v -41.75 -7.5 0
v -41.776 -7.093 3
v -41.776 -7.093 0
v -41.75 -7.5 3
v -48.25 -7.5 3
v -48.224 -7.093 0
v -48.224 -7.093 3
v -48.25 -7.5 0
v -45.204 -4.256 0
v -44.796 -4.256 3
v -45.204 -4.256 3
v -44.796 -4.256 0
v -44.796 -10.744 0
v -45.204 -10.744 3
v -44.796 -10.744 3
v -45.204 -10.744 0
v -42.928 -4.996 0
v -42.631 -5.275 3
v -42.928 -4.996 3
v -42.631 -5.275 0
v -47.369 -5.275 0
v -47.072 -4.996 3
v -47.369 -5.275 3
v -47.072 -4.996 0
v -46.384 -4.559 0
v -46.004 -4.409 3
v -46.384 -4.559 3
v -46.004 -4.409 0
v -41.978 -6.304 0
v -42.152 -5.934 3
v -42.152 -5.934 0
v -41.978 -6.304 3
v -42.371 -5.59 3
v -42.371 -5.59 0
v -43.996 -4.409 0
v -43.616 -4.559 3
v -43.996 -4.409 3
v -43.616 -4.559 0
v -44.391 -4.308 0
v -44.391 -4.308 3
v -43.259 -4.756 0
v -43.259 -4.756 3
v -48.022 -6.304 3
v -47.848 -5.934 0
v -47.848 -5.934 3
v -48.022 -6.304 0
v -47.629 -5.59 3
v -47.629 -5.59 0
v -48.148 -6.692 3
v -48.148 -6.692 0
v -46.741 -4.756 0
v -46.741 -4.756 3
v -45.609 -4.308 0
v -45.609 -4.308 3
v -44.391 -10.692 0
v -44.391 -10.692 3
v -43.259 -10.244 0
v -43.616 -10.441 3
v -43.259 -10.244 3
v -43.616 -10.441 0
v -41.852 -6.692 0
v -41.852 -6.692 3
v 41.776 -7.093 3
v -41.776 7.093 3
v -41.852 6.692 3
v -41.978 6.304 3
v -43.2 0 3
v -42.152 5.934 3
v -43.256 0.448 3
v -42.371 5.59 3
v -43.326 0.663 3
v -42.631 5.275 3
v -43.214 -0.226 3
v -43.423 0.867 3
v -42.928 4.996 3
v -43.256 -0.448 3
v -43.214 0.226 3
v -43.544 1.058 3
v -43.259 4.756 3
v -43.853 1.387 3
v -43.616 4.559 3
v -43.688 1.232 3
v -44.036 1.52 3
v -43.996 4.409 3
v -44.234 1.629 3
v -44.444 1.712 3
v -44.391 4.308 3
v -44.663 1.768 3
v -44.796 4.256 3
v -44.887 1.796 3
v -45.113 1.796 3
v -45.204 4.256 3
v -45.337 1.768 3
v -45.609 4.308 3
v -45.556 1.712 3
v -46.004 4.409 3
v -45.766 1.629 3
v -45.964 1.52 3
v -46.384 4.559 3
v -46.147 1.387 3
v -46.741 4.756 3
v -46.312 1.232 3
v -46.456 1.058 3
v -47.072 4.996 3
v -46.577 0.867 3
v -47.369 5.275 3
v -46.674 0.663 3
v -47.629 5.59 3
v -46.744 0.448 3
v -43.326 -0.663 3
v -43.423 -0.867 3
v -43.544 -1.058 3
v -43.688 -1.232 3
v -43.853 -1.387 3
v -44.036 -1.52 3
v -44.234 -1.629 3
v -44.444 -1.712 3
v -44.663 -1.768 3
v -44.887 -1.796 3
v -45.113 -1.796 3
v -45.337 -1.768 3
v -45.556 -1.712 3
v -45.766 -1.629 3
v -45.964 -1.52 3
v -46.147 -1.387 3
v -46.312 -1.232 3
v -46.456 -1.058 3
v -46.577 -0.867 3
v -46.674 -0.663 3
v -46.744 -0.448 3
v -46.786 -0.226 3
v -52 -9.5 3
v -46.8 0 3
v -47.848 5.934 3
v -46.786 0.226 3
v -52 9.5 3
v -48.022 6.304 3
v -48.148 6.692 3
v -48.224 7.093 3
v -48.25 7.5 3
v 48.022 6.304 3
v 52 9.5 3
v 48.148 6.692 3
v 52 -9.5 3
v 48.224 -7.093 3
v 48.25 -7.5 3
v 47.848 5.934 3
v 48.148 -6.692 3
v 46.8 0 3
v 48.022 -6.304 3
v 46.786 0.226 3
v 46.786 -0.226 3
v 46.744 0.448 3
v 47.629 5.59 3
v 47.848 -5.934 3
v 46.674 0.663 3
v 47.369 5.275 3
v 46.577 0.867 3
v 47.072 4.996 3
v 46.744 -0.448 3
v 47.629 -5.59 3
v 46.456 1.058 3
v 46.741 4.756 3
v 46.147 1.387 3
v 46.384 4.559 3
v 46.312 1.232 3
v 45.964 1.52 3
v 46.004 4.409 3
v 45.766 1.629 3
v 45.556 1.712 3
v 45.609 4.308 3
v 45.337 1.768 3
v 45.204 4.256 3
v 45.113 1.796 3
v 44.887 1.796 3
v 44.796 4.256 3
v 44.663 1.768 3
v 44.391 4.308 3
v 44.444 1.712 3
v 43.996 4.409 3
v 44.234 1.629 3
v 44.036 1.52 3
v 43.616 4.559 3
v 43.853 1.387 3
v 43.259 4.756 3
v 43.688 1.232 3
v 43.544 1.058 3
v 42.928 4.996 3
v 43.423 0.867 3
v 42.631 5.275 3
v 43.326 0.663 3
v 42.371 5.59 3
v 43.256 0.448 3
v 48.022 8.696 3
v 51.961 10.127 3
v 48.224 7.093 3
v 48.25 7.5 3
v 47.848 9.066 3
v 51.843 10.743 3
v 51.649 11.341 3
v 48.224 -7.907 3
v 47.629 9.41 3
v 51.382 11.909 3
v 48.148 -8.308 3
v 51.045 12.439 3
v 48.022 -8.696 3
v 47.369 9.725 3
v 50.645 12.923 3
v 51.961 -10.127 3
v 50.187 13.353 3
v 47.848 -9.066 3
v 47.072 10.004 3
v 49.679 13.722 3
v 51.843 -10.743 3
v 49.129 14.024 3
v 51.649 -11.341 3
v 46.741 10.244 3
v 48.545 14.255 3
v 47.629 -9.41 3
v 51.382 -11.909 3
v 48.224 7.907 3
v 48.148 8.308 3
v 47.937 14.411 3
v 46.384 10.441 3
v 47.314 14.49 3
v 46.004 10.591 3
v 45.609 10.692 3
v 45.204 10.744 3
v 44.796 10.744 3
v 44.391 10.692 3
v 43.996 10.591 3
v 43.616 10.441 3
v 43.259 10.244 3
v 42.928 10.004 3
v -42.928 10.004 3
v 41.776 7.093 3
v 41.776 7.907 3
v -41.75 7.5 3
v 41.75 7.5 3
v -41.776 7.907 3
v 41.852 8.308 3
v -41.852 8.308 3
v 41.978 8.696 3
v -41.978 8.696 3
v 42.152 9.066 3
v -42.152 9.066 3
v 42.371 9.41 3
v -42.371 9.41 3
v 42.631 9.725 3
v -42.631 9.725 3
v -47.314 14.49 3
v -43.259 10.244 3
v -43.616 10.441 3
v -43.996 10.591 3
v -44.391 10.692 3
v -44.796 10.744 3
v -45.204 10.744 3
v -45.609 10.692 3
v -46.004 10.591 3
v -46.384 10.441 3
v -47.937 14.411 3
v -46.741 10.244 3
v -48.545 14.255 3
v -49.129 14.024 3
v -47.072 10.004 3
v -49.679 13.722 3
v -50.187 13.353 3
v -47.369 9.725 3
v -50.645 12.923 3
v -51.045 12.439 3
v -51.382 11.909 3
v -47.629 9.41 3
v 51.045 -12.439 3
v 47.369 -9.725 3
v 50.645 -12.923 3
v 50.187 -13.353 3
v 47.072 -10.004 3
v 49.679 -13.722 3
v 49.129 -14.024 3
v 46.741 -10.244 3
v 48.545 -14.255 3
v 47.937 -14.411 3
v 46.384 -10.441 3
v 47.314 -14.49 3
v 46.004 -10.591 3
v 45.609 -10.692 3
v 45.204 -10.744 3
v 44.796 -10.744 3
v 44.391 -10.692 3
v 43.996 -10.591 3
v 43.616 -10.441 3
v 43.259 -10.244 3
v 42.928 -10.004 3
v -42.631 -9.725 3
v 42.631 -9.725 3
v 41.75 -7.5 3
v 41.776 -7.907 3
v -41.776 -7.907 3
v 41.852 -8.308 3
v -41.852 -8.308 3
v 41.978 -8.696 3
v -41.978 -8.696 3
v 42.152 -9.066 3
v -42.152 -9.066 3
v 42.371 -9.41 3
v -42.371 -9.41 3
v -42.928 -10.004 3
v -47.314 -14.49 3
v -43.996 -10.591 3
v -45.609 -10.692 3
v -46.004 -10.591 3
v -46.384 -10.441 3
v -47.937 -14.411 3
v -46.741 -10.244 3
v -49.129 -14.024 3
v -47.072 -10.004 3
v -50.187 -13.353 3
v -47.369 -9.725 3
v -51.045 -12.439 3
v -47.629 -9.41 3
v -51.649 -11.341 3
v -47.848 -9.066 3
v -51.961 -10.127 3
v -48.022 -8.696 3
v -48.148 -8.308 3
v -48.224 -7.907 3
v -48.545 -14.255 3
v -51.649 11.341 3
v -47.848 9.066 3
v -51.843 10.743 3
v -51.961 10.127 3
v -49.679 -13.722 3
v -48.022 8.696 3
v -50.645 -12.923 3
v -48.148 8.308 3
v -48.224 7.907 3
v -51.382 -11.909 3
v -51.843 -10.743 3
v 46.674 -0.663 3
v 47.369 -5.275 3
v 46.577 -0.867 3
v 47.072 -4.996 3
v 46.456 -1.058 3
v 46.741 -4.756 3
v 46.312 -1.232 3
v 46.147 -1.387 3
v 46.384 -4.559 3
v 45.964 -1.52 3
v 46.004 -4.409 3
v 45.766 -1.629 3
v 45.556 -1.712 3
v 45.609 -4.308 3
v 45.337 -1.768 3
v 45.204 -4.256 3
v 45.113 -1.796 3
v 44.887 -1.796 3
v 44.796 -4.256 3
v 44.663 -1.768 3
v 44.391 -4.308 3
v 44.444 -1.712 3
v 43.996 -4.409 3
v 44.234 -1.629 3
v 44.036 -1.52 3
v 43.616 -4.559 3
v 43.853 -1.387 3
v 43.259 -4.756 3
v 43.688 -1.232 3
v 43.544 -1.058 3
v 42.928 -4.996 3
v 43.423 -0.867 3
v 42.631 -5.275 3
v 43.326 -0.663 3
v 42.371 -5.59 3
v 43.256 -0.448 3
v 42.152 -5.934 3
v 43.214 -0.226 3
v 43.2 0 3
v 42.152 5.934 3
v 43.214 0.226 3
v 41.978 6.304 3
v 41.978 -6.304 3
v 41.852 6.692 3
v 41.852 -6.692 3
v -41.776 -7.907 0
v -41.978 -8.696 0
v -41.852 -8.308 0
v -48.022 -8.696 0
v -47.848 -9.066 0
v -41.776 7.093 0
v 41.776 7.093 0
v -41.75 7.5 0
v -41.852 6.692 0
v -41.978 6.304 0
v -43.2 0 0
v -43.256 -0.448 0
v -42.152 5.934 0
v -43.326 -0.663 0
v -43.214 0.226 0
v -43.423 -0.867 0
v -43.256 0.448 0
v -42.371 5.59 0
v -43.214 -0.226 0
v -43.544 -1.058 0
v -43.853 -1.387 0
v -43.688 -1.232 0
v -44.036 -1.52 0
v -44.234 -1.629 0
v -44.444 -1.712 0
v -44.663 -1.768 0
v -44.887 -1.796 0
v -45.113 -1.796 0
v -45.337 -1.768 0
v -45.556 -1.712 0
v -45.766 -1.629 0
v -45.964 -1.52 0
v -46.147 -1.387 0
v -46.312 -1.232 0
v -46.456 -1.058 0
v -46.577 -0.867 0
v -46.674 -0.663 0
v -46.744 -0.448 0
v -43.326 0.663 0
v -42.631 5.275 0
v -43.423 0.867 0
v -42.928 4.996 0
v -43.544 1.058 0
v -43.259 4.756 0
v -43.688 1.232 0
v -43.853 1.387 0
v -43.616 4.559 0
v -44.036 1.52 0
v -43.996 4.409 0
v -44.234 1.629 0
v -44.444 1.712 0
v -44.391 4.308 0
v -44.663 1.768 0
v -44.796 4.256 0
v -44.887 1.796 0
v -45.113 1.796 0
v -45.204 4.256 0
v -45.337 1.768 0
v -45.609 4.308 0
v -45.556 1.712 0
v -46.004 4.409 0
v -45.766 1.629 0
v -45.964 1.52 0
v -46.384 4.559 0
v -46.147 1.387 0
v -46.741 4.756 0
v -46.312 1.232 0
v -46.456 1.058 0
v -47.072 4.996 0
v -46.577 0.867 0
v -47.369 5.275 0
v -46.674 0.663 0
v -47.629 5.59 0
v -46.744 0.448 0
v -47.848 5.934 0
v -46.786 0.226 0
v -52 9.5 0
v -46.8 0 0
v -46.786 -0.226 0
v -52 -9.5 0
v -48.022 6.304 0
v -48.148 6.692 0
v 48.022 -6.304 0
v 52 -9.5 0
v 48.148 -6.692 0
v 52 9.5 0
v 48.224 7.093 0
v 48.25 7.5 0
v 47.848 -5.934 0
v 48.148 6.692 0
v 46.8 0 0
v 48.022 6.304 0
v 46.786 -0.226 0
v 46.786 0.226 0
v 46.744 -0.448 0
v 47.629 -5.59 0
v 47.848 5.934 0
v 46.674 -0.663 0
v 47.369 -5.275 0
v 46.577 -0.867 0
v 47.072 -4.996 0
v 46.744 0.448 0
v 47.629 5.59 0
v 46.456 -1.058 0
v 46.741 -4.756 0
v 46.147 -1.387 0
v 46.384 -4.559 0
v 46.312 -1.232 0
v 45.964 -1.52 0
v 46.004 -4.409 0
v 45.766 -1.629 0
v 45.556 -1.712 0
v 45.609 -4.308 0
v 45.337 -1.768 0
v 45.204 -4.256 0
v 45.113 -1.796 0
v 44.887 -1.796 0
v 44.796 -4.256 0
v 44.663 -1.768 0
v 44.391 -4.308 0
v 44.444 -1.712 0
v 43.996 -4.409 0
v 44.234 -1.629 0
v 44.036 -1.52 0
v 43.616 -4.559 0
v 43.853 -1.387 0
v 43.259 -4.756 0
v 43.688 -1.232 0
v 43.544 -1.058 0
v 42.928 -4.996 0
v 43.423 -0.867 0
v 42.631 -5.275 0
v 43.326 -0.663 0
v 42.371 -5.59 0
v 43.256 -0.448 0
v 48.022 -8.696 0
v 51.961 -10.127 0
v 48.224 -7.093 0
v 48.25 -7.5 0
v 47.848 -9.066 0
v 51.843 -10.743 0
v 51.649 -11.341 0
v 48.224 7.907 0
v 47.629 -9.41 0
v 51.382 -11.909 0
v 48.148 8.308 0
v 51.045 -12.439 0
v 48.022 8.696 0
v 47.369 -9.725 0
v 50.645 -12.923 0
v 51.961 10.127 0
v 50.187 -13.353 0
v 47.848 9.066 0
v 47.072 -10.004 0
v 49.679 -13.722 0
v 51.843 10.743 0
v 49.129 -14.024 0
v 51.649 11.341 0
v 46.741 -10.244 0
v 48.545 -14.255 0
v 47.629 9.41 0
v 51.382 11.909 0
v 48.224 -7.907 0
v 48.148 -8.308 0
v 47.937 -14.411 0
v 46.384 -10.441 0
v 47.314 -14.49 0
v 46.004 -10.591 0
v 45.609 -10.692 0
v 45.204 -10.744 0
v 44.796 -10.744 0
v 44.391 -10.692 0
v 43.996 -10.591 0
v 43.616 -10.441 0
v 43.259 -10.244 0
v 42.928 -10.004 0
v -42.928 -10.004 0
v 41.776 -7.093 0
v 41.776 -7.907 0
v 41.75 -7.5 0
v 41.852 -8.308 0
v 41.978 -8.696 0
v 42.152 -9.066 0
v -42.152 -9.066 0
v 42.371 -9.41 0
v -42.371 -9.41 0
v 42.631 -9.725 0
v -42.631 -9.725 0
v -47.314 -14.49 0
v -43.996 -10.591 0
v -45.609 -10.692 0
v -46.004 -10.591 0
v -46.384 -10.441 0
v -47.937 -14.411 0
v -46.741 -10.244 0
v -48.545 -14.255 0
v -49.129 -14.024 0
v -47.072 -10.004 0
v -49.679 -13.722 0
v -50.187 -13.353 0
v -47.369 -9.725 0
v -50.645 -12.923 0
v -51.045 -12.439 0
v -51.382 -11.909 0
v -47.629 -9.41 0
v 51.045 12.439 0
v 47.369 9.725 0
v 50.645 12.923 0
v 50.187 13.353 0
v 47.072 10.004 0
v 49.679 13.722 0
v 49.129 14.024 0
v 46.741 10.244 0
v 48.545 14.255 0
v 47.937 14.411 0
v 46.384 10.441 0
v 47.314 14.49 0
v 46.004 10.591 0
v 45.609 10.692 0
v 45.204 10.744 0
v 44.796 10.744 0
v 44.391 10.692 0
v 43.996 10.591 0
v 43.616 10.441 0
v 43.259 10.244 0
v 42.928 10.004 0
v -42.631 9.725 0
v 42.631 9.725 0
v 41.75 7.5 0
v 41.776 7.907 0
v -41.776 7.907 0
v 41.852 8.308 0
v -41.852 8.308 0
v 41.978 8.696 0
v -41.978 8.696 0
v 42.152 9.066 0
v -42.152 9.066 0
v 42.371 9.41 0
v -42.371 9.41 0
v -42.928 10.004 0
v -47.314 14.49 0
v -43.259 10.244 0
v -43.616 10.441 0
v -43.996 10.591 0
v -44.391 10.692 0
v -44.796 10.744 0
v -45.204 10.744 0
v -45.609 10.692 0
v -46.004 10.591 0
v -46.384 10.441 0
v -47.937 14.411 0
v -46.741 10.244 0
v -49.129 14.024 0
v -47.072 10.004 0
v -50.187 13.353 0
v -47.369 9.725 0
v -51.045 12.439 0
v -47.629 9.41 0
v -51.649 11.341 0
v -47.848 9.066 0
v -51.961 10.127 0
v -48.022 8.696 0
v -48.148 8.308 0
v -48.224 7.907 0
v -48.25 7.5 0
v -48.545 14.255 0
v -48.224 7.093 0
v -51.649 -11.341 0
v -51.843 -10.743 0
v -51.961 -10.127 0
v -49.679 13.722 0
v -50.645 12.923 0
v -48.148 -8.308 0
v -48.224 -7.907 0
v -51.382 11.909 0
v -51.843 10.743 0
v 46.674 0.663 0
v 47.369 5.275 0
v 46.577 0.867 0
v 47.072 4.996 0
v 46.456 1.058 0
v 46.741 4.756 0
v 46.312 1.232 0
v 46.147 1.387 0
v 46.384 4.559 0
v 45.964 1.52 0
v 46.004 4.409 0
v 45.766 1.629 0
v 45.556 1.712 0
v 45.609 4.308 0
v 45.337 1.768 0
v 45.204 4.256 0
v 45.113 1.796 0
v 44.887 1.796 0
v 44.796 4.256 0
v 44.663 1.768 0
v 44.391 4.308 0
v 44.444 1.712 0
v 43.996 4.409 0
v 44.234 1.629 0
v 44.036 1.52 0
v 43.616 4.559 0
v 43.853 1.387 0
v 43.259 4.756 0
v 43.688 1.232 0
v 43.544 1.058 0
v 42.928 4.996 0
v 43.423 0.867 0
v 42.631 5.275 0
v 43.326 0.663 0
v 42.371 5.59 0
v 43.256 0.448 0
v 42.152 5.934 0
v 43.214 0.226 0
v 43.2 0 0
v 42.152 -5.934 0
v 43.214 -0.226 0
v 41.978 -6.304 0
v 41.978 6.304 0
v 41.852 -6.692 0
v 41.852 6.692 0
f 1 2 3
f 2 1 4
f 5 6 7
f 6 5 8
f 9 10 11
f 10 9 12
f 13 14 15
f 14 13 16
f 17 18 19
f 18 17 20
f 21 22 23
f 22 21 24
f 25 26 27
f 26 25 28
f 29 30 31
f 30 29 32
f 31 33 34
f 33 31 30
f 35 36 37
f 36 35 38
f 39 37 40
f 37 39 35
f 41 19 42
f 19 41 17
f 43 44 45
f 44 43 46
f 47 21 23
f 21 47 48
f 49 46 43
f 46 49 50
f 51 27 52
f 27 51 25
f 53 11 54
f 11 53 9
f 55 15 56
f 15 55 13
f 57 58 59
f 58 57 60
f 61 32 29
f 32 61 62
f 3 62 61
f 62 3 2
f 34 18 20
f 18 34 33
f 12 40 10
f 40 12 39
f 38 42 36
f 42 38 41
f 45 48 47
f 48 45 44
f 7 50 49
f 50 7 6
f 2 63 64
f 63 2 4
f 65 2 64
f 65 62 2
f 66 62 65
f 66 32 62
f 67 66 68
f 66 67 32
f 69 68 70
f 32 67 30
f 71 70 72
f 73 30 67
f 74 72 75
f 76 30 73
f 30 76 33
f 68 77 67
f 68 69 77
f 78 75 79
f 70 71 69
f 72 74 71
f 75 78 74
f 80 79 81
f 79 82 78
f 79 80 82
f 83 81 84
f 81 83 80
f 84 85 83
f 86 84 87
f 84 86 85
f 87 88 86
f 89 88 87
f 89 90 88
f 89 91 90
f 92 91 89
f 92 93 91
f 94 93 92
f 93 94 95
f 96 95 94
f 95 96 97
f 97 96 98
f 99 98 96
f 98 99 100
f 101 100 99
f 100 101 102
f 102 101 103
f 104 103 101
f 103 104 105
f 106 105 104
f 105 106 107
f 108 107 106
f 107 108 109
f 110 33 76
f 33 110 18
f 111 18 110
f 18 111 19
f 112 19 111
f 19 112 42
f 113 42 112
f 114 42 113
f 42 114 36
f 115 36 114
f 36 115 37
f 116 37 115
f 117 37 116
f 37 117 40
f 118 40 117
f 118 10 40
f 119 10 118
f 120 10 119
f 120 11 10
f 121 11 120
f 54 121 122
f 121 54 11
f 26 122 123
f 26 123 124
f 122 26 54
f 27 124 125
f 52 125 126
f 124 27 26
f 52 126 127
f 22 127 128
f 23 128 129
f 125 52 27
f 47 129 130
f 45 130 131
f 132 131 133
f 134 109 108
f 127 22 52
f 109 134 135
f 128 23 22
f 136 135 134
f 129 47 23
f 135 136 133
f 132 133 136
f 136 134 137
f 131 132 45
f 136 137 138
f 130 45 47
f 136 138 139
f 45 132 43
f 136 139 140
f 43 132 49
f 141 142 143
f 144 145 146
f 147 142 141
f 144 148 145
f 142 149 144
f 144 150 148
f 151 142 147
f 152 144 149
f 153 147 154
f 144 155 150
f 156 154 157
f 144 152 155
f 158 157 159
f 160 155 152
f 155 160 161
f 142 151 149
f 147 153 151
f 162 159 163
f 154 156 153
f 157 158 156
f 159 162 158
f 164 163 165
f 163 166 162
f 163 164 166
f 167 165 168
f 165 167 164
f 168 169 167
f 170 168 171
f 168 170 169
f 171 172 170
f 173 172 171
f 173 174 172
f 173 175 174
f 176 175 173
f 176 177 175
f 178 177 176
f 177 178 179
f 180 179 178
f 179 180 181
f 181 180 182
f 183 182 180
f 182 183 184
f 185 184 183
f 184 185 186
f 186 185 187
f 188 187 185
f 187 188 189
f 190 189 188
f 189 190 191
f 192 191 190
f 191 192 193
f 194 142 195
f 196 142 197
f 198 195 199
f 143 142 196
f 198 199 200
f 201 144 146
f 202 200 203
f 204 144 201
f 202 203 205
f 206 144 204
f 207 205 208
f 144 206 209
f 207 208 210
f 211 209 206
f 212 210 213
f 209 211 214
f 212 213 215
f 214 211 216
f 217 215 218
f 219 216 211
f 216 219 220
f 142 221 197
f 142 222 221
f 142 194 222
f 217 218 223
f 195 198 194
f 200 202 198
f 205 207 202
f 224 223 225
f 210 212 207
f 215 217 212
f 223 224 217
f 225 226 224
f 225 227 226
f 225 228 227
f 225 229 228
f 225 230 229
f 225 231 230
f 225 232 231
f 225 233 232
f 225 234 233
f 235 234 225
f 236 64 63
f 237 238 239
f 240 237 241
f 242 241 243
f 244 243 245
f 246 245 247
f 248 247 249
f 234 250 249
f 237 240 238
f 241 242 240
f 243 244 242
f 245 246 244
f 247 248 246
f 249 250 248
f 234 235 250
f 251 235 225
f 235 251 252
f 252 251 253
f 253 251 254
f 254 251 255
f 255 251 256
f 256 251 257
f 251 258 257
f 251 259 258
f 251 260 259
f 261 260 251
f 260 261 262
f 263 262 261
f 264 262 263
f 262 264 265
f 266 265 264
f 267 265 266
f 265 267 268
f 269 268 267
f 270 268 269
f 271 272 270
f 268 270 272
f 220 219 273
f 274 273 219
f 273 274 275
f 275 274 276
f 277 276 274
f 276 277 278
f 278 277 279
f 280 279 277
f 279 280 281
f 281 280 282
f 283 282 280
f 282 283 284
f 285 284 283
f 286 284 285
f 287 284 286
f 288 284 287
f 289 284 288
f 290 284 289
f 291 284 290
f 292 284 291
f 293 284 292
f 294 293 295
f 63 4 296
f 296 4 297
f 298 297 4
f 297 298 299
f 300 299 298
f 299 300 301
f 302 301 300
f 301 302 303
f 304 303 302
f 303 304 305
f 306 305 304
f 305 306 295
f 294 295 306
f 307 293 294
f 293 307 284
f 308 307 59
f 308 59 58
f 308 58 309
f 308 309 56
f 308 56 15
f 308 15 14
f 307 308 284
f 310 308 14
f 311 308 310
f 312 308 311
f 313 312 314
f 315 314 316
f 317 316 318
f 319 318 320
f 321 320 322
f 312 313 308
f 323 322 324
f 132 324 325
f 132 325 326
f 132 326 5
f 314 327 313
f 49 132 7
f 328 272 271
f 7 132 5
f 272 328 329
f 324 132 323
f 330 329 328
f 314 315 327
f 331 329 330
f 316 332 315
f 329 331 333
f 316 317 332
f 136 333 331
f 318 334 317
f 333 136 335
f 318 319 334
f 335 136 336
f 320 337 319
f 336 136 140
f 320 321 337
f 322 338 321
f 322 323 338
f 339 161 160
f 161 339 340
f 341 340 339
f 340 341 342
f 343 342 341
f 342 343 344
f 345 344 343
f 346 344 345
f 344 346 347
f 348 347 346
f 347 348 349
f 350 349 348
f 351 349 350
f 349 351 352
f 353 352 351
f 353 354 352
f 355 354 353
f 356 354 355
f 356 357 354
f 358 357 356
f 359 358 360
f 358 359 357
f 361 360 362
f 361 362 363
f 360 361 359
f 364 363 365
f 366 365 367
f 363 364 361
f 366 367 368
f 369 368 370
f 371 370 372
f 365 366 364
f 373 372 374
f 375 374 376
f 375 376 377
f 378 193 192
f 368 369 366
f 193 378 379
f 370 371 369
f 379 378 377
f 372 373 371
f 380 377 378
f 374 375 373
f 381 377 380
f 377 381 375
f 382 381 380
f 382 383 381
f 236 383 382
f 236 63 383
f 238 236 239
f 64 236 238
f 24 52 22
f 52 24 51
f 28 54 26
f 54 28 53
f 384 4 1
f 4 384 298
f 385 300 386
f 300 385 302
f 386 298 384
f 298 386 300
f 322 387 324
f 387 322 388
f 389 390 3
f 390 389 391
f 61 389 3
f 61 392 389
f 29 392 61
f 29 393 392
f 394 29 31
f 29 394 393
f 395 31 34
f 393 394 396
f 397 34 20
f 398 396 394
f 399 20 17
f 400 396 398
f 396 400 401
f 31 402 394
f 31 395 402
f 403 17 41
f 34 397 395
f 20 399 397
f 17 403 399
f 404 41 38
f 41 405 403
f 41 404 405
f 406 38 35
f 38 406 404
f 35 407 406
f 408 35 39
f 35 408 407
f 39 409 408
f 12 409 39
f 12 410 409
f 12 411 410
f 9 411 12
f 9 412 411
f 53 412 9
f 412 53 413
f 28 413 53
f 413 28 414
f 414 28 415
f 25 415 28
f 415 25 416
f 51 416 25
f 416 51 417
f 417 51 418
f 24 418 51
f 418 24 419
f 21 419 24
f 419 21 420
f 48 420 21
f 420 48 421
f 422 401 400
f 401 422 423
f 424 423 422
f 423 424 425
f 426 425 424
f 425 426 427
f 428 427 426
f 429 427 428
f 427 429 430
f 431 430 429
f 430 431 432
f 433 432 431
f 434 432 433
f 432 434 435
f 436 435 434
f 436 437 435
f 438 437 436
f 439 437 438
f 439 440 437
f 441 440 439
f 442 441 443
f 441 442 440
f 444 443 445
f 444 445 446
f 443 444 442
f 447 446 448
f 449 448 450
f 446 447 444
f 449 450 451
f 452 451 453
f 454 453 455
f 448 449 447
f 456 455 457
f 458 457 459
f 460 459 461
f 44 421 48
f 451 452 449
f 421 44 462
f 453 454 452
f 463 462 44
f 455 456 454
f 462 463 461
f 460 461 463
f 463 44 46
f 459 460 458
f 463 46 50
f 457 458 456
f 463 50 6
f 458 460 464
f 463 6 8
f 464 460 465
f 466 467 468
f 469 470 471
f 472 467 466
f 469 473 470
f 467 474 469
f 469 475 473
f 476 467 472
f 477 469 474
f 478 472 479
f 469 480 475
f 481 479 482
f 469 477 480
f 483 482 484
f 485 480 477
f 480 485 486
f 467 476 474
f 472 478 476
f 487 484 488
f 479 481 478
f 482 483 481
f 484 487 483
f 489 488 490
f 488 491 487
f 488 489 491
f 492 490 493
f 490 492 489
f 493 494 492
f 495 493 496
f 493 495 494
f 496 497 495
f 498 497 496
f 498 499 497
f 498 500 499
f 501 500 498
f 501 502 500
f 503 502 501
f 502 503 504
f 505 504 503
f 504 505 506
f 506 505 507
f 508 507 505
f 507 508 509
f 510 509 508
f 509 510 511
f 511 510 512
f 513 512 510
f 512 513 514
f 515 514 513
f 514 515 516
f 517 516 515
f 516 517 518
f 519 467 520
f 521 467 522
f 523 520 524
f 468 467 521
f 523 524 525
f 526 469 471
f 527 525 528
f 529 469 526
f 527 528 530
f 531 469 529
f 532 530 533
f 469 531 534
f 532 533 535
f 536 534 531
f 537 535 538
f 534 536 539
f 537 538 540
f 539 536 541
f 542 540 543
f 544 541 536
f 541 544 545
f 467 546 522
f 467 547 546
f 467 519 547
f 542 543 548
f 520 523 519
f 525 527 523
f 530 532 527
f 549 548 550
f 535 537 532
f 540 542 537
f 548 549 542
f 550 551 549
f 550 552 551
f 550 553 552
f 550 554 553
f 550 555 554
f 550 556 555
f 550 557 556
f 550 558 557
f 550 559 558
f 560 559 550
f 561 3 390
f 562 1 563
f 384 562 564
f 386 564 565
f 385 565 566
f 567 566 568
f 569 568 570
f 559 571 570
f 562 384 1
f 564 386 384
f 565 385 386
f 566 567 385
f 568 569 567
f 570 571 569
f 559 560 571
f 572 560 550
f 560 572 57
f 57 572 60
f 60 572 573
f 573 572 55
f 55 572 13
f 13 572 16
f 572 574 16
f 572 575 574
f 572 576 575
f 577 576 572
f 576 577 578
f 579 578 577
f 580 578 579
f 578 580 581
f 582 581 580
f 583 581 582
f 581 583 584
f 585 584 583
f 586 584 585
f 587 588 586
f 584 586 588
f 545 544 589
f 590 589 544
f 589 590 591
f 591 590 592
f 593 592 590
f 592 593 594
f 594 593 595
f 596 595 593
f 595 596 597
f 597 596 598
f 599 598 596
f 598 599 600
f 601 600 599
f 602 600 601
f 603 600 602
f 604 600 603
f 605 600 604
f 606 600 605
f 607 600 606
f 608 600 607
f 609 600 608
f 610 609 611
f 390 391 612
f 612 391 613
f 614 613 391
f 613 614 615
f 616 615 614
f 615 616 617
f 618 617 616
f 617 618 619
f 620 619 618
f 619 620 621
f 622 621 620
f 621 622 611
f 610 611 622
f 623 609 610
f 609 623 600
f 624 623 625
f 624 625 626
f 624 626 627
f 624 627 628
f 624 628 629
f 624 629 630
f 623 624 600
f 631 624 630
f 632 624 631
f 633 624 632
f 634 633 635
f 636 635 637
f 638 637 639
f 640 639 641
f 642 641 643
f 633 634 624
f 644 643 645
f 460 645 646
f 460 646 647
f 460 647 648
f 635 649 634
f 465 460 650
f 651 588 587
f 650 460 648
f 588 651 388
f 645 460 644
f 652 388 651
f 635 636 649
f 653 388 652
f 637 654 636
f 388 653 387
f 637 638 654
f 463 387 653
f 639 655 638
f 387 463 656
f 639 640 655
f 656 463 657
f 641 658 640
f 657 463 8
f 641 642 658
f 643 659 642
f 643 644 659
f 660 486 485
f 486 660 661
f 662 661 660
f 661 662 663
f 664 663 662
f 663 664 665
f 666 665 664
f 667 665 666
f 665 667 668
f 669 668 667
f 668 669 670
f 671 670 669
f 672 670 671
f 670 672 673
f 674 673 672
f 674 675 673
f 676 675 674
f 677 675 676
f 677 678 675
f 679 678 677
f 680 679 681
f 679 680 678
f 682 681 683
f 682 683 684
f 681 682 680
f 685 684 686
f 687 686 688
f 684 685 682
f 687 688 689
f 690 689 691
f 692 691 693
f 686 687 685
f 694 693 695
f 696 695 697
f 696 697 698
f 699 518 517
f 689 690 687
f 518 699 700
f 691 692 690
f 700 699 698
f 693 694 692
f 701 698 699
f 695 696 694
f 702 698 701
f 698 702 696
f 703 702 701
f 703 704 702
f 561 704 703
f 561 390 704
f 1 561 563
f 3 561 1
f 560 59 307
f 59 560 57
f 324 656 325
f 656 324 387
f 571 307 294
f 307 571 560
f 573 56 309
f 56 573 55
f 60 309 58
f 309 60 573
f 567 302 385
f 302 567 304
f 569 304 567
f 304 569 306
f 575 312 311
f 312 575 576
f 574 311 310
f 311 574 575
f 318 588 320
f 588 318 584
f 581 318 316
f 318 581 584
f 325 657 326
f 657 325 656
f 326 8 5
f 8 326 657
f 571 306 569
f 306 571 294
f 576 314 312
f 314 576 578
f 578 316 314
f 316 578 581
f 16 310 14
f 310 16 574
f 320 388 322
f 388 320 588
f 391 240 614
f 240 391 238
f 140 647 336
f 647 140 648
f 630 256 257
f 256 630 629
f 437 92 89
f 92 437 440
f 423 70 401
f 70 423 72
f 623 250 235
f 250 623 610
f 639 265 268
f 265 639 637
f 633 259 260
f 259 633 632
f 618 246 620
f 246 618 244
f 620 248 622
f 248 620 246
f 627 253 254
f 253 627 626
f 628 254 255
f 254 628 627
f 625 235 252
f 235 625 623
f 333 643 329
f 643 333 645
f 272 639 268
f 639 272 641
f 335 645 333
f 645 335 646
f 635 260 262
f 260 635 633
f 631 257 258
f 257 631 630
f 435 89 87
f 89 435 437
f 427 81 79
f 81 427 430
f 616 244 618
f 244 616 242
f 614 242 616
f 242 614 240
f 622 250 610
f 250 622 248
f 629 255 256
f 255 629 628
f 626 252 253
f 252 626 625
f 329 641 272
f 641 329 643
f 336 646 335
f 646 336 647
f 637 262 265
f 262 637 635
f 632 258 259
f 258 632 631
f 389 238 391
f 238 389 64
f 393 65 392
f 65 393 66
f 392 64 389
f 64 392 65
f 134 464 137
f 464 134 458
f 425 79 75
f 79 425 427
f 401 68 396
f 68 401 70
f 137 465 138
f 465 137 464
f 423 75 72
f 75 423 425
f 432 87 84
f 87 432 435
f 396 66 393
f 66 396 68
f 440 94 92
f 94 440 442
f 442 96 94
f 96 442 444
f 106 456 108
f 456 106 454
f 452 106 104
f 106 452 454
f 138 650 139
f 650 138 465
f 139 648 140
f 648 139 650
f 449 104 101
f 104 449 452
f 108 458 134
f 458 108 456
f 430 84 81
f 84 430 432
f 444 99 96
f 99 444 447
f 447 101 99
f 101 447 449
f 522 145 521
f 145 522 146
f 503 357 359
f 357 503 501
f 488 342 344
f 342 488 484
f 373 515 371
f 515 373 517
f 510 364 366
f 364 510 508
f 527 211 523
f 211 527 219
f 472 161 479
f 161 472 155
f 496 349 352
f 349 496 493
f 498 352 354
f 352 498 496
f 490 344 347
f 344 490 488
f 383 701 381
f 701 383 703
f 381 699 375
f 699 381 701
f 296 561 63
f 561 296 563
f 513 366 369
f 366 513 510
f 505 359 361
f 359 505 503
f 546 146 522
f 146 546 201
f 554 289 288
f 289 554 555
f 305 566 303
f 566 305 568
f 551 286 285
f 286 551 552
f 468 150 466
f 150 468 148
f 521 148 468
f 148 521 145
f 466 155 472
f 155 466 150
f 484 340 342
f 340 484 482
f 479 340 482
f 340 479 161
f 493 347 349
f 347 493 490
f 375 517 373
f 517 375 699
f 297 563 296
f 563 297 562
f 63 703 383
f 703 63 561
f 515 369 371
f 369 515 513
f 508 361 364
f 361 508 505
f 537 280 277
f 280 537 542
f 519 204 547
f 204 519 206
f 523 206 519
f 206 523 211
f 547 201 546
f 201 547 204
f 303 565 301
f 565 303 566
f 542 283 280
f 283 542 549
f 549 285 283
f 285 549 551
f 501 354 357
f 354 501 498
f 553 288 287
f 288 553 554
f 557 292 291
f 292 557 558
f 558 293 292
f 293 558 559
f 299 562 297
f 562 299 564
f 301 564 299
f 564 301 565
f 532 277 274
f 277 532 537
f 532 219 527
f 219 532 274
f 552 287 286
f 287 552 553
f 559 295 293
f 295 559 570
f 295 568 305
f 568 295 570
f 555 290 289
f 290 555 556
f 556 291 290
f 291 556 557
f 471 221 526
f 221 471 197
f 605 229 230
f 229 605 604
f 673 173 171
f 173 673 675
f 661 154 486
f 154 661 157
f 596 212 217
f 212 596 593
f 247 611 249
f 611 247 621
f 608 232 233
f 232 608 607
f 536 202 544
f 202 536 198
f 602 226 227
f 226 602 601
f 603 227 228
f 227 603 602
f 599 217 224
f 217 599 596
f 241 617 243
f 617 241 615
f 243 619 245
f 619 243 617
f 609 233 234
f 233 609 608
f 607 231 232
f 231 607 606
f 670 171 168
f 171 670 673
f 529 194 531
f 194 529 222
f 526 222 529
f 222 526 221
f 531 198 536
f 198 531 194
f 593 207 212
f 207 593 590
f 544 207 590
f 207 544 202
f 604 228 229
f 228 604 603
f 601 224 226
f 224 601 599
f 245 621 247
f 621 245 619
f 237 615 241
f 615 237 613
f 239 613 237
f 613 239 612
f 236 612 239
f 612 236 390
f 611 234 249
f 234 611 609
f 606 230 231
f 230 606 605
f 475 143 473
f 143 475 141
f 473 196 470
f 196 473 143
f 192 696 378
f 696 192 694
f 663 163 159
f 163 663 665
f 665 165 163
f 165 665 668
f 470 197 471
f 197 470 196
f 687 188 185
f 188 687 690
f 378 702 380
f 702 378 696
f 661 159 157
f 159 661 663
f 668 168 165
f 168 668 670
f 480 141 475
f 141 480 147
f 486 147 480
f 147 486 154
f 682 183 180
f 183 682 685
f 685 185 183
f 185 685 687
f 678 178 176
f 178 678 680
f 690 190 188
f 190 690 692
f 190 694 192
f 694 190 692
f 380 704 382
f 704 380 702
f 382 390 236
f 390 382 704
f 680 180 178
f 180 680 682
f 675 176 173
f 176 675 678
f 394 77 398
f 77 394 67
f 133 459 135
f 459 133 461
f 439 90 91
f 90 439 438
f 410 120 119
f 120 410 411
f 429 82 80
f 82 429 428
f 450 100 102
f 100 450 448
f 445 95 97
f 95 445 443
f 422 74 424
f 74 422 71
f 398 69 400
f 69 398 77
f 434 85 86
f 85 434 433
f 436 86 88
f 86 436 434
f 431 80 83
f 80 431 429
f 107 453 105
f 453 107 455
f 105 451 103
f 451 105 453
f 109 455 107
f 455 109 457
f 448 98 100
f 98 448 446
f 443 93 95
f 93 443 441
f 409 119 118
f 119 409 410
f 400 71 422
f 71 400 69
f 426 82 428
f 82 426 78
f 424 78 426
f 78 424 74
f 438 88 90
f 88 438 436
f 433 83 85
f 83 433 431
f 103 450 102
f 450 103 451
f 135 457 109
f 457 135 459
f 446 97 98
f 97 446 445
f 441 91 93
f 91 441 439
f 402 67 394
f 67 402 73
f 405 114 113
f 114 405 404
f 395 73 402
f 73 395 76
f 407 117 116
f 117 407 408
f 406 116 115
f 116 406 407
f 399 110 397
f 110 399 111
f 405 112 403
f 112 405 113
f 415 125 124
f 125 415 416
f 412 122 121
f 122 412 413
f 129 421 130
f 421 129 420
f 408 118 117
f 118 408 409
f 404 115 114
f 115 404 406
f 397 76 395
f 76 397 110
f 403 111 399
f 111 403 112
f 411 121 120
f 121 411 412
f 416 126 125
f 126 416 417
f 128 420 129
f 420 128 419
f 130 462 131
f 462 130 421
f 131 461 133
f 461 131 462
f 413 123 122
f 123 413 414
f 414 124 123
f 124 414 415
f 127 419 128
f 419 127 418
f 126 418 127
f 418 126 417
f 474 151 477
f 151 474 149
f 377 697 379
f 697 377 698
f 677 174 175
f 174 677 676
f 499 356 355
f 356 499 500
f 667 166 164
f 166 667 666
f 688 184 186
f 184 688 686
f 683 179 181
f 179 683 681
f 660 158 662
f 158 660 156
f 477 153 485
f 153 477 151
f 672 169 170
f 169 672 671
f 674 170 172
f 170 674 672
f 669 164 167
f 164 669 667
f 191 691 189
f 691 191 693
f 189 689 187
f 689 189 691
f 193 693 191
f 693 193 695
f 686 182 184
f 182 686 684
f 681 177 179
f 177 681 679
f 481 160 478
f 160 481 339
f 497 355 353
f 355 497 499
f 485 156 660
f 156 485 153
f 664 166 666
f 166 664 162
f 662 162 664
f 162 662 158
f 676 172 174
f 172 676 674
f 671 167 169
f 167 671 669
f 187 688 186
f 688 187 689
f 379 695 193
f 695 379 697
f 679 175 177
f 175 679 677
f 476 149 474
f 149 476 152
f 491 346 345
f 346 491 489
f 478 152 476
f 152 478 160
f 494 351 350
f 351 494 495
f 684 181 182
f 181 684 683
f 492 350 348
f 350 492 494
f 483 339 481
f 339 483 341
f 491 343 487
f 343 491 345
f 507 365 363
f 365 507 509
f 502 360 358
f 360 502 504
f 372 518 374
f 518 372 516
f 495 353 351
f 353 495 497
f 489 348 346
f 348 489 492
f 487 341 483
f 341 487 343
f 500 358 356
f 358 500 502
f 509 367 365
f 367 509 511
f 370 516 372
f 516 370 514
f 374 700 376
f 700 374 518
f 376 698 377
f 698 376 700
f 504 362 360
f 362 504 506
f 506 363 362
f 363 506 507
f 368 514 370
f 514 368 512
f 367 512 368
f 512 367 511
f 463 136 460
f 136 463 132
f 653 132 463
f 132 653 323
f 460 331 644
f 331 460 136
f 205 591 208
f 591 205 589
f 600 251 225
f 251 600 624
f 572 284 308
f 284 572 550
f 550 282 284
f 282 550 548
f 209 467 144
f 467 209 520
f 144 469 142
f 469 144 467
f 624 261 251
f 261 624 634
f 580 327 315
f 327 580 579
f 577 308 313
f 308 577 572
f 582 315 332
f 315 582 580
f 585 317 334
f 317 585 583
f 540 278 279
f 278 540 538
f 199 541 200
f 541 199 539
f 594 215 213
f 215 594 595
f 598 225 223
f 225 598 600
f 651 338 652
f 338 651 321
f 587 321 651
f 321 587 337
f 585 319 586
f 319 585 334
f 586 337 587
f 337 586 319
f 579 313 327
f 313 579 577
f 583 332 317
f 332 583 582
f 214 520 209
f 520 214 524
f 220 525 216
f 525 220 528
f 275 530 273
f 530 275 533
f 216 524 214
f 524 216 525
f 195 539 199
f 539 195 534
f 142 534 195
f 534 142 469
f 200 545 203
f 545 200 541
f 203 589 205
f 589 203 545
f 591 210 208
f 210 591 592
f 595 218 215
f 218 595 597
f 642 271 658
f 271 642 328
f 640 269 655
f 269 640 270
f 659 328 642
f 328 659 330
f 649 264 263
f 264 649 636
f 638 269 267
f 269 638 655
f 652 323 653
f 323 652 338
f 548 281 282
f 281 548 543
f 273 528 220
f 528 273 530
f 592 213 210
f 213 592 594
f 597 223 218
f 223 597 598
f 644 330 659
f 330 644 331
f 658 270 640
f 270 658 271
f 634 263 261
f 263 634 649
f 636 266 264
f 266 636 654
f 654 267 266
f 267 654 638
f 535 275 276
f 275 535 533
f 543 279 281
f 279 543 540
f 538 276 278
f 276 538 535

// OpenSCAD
$fn = 50;


difference() {
	union() {
		hull() {
			translate(v = [-47.0000000000, 9.5000000000, 0]) {
				cylinder(h = 3, r = 5);
			}
			translate(v = [47.0000000000, 9.5000000000, 0]) {
				cylinder(h = 3, r = 5);
			}
			translate(v = [-47.0000000000, -9.5000000000, 0]) {
				cylinder(h = 3, r = 5);
			}
			translate(v = [47.0000000000, -9.5000000000, 0]) {
				cylinder(h = 3, r = 5);
			}
		}
	}
	union() {
		translate(v = [-45.0000000000, -7.5000000000, 0]) {
			cylinder(h = 3, r = 3.2500000000);
		}
		translate(v = [-45.0000000000, 7.5000000000, 0]) {
			cylinder(h = 3, r = 3.2500000000);
		}
		translate(v = [45.0000000000, -7.5000000000, 0]) {
			cylinder(h = 3, r = 3.2500000000);
		}
		translate(v = [45.0000000000, 7.5000000000, 0]) {
			cylinder(h = 3, r = 3.2500000000);
		}
		translate(v = [-45.0000000000, -7.5000000000, 0]) {
			cylinder(h = 3, r = 1.8000000000);
		}
		translate(v = [-45.0000000000, 0.0000000000, 0]) {
			cylinder(h = 3, r = 1.8000000000);
		}
		translate(v = [-45.0000000000, 7.5000000000, 0]) {
			cylinder(h = 3, r = 1.8000000000);
		}
		translate(v = [45.0000000000, -7.5000000000, 0]) {
			cylinder(h = 3, r = 1.8000000000);
		}
		translate(v = [45.0000000000, 0.0000000000, 0]) {
			cylinder(h = 3, r = 1.8000000000);
		}
		translate(v = [45.0000000000, 7.5000000000, 0]) {
			cylinder(h = 3, r = 1.8000000000);
		}
		translate(v = [-45.0000000000, -7.5000000000, 0]) {
			cylinder(h = 3, r = 1.8000000000);
		}
		translate(v = [-45.0000000000, 0.0000000000, 0]) {
			cylinder(h = 3, r = 1.8000000000);
		}
		translate(v = [-45.0000000000, 7.5000000000, 0]) {
			cylinder(h = 3, r = 1.8000000000);
		}
		translate(v = [45.0000000000, -7.5000000000, 0]) {
			cylinder(h = 3, r = 1.8000000000);
		}
		translate(v = [45.0000000000, 0.0000000000, 0]) {
			cylinder(h = 3, r = 1.8000000000);
		}
		translate(v = [45.0000000000, 7.5000000000, 0]) {
			cylinder(h = 3, r = 1.8000000000);
		}
		translate(v = [-45.0000000000, -7.5000000000, 0]) {
			cylinder(h = 3, r = 1.8000000000);
		}
		translate(v = [-45.0000000000, 0.0000000000, 0]) {
			cylinder(h = 3, r = 1.8000000000);
		}
		translate(v = [-45.0000000000, 7.5000000000, 0]) {
			cylinder(h = 3, r = 1.8000000000);
		}
		translate(v = [45.0000000000, -7.5000000000, 0]) {
			cylinder(h = 3, r = 1.8000000000);
		}
		translate(v = [45.0000000000, 0.0000000000, 0]) {
			cylinder(h = 3, r = 1.8000000000);
		}
		translate(v = [45.0000000000, 7.5000000000, 0]) {
			cylinder(h = 3, r = 1.8000000000);
		}
	}
}
